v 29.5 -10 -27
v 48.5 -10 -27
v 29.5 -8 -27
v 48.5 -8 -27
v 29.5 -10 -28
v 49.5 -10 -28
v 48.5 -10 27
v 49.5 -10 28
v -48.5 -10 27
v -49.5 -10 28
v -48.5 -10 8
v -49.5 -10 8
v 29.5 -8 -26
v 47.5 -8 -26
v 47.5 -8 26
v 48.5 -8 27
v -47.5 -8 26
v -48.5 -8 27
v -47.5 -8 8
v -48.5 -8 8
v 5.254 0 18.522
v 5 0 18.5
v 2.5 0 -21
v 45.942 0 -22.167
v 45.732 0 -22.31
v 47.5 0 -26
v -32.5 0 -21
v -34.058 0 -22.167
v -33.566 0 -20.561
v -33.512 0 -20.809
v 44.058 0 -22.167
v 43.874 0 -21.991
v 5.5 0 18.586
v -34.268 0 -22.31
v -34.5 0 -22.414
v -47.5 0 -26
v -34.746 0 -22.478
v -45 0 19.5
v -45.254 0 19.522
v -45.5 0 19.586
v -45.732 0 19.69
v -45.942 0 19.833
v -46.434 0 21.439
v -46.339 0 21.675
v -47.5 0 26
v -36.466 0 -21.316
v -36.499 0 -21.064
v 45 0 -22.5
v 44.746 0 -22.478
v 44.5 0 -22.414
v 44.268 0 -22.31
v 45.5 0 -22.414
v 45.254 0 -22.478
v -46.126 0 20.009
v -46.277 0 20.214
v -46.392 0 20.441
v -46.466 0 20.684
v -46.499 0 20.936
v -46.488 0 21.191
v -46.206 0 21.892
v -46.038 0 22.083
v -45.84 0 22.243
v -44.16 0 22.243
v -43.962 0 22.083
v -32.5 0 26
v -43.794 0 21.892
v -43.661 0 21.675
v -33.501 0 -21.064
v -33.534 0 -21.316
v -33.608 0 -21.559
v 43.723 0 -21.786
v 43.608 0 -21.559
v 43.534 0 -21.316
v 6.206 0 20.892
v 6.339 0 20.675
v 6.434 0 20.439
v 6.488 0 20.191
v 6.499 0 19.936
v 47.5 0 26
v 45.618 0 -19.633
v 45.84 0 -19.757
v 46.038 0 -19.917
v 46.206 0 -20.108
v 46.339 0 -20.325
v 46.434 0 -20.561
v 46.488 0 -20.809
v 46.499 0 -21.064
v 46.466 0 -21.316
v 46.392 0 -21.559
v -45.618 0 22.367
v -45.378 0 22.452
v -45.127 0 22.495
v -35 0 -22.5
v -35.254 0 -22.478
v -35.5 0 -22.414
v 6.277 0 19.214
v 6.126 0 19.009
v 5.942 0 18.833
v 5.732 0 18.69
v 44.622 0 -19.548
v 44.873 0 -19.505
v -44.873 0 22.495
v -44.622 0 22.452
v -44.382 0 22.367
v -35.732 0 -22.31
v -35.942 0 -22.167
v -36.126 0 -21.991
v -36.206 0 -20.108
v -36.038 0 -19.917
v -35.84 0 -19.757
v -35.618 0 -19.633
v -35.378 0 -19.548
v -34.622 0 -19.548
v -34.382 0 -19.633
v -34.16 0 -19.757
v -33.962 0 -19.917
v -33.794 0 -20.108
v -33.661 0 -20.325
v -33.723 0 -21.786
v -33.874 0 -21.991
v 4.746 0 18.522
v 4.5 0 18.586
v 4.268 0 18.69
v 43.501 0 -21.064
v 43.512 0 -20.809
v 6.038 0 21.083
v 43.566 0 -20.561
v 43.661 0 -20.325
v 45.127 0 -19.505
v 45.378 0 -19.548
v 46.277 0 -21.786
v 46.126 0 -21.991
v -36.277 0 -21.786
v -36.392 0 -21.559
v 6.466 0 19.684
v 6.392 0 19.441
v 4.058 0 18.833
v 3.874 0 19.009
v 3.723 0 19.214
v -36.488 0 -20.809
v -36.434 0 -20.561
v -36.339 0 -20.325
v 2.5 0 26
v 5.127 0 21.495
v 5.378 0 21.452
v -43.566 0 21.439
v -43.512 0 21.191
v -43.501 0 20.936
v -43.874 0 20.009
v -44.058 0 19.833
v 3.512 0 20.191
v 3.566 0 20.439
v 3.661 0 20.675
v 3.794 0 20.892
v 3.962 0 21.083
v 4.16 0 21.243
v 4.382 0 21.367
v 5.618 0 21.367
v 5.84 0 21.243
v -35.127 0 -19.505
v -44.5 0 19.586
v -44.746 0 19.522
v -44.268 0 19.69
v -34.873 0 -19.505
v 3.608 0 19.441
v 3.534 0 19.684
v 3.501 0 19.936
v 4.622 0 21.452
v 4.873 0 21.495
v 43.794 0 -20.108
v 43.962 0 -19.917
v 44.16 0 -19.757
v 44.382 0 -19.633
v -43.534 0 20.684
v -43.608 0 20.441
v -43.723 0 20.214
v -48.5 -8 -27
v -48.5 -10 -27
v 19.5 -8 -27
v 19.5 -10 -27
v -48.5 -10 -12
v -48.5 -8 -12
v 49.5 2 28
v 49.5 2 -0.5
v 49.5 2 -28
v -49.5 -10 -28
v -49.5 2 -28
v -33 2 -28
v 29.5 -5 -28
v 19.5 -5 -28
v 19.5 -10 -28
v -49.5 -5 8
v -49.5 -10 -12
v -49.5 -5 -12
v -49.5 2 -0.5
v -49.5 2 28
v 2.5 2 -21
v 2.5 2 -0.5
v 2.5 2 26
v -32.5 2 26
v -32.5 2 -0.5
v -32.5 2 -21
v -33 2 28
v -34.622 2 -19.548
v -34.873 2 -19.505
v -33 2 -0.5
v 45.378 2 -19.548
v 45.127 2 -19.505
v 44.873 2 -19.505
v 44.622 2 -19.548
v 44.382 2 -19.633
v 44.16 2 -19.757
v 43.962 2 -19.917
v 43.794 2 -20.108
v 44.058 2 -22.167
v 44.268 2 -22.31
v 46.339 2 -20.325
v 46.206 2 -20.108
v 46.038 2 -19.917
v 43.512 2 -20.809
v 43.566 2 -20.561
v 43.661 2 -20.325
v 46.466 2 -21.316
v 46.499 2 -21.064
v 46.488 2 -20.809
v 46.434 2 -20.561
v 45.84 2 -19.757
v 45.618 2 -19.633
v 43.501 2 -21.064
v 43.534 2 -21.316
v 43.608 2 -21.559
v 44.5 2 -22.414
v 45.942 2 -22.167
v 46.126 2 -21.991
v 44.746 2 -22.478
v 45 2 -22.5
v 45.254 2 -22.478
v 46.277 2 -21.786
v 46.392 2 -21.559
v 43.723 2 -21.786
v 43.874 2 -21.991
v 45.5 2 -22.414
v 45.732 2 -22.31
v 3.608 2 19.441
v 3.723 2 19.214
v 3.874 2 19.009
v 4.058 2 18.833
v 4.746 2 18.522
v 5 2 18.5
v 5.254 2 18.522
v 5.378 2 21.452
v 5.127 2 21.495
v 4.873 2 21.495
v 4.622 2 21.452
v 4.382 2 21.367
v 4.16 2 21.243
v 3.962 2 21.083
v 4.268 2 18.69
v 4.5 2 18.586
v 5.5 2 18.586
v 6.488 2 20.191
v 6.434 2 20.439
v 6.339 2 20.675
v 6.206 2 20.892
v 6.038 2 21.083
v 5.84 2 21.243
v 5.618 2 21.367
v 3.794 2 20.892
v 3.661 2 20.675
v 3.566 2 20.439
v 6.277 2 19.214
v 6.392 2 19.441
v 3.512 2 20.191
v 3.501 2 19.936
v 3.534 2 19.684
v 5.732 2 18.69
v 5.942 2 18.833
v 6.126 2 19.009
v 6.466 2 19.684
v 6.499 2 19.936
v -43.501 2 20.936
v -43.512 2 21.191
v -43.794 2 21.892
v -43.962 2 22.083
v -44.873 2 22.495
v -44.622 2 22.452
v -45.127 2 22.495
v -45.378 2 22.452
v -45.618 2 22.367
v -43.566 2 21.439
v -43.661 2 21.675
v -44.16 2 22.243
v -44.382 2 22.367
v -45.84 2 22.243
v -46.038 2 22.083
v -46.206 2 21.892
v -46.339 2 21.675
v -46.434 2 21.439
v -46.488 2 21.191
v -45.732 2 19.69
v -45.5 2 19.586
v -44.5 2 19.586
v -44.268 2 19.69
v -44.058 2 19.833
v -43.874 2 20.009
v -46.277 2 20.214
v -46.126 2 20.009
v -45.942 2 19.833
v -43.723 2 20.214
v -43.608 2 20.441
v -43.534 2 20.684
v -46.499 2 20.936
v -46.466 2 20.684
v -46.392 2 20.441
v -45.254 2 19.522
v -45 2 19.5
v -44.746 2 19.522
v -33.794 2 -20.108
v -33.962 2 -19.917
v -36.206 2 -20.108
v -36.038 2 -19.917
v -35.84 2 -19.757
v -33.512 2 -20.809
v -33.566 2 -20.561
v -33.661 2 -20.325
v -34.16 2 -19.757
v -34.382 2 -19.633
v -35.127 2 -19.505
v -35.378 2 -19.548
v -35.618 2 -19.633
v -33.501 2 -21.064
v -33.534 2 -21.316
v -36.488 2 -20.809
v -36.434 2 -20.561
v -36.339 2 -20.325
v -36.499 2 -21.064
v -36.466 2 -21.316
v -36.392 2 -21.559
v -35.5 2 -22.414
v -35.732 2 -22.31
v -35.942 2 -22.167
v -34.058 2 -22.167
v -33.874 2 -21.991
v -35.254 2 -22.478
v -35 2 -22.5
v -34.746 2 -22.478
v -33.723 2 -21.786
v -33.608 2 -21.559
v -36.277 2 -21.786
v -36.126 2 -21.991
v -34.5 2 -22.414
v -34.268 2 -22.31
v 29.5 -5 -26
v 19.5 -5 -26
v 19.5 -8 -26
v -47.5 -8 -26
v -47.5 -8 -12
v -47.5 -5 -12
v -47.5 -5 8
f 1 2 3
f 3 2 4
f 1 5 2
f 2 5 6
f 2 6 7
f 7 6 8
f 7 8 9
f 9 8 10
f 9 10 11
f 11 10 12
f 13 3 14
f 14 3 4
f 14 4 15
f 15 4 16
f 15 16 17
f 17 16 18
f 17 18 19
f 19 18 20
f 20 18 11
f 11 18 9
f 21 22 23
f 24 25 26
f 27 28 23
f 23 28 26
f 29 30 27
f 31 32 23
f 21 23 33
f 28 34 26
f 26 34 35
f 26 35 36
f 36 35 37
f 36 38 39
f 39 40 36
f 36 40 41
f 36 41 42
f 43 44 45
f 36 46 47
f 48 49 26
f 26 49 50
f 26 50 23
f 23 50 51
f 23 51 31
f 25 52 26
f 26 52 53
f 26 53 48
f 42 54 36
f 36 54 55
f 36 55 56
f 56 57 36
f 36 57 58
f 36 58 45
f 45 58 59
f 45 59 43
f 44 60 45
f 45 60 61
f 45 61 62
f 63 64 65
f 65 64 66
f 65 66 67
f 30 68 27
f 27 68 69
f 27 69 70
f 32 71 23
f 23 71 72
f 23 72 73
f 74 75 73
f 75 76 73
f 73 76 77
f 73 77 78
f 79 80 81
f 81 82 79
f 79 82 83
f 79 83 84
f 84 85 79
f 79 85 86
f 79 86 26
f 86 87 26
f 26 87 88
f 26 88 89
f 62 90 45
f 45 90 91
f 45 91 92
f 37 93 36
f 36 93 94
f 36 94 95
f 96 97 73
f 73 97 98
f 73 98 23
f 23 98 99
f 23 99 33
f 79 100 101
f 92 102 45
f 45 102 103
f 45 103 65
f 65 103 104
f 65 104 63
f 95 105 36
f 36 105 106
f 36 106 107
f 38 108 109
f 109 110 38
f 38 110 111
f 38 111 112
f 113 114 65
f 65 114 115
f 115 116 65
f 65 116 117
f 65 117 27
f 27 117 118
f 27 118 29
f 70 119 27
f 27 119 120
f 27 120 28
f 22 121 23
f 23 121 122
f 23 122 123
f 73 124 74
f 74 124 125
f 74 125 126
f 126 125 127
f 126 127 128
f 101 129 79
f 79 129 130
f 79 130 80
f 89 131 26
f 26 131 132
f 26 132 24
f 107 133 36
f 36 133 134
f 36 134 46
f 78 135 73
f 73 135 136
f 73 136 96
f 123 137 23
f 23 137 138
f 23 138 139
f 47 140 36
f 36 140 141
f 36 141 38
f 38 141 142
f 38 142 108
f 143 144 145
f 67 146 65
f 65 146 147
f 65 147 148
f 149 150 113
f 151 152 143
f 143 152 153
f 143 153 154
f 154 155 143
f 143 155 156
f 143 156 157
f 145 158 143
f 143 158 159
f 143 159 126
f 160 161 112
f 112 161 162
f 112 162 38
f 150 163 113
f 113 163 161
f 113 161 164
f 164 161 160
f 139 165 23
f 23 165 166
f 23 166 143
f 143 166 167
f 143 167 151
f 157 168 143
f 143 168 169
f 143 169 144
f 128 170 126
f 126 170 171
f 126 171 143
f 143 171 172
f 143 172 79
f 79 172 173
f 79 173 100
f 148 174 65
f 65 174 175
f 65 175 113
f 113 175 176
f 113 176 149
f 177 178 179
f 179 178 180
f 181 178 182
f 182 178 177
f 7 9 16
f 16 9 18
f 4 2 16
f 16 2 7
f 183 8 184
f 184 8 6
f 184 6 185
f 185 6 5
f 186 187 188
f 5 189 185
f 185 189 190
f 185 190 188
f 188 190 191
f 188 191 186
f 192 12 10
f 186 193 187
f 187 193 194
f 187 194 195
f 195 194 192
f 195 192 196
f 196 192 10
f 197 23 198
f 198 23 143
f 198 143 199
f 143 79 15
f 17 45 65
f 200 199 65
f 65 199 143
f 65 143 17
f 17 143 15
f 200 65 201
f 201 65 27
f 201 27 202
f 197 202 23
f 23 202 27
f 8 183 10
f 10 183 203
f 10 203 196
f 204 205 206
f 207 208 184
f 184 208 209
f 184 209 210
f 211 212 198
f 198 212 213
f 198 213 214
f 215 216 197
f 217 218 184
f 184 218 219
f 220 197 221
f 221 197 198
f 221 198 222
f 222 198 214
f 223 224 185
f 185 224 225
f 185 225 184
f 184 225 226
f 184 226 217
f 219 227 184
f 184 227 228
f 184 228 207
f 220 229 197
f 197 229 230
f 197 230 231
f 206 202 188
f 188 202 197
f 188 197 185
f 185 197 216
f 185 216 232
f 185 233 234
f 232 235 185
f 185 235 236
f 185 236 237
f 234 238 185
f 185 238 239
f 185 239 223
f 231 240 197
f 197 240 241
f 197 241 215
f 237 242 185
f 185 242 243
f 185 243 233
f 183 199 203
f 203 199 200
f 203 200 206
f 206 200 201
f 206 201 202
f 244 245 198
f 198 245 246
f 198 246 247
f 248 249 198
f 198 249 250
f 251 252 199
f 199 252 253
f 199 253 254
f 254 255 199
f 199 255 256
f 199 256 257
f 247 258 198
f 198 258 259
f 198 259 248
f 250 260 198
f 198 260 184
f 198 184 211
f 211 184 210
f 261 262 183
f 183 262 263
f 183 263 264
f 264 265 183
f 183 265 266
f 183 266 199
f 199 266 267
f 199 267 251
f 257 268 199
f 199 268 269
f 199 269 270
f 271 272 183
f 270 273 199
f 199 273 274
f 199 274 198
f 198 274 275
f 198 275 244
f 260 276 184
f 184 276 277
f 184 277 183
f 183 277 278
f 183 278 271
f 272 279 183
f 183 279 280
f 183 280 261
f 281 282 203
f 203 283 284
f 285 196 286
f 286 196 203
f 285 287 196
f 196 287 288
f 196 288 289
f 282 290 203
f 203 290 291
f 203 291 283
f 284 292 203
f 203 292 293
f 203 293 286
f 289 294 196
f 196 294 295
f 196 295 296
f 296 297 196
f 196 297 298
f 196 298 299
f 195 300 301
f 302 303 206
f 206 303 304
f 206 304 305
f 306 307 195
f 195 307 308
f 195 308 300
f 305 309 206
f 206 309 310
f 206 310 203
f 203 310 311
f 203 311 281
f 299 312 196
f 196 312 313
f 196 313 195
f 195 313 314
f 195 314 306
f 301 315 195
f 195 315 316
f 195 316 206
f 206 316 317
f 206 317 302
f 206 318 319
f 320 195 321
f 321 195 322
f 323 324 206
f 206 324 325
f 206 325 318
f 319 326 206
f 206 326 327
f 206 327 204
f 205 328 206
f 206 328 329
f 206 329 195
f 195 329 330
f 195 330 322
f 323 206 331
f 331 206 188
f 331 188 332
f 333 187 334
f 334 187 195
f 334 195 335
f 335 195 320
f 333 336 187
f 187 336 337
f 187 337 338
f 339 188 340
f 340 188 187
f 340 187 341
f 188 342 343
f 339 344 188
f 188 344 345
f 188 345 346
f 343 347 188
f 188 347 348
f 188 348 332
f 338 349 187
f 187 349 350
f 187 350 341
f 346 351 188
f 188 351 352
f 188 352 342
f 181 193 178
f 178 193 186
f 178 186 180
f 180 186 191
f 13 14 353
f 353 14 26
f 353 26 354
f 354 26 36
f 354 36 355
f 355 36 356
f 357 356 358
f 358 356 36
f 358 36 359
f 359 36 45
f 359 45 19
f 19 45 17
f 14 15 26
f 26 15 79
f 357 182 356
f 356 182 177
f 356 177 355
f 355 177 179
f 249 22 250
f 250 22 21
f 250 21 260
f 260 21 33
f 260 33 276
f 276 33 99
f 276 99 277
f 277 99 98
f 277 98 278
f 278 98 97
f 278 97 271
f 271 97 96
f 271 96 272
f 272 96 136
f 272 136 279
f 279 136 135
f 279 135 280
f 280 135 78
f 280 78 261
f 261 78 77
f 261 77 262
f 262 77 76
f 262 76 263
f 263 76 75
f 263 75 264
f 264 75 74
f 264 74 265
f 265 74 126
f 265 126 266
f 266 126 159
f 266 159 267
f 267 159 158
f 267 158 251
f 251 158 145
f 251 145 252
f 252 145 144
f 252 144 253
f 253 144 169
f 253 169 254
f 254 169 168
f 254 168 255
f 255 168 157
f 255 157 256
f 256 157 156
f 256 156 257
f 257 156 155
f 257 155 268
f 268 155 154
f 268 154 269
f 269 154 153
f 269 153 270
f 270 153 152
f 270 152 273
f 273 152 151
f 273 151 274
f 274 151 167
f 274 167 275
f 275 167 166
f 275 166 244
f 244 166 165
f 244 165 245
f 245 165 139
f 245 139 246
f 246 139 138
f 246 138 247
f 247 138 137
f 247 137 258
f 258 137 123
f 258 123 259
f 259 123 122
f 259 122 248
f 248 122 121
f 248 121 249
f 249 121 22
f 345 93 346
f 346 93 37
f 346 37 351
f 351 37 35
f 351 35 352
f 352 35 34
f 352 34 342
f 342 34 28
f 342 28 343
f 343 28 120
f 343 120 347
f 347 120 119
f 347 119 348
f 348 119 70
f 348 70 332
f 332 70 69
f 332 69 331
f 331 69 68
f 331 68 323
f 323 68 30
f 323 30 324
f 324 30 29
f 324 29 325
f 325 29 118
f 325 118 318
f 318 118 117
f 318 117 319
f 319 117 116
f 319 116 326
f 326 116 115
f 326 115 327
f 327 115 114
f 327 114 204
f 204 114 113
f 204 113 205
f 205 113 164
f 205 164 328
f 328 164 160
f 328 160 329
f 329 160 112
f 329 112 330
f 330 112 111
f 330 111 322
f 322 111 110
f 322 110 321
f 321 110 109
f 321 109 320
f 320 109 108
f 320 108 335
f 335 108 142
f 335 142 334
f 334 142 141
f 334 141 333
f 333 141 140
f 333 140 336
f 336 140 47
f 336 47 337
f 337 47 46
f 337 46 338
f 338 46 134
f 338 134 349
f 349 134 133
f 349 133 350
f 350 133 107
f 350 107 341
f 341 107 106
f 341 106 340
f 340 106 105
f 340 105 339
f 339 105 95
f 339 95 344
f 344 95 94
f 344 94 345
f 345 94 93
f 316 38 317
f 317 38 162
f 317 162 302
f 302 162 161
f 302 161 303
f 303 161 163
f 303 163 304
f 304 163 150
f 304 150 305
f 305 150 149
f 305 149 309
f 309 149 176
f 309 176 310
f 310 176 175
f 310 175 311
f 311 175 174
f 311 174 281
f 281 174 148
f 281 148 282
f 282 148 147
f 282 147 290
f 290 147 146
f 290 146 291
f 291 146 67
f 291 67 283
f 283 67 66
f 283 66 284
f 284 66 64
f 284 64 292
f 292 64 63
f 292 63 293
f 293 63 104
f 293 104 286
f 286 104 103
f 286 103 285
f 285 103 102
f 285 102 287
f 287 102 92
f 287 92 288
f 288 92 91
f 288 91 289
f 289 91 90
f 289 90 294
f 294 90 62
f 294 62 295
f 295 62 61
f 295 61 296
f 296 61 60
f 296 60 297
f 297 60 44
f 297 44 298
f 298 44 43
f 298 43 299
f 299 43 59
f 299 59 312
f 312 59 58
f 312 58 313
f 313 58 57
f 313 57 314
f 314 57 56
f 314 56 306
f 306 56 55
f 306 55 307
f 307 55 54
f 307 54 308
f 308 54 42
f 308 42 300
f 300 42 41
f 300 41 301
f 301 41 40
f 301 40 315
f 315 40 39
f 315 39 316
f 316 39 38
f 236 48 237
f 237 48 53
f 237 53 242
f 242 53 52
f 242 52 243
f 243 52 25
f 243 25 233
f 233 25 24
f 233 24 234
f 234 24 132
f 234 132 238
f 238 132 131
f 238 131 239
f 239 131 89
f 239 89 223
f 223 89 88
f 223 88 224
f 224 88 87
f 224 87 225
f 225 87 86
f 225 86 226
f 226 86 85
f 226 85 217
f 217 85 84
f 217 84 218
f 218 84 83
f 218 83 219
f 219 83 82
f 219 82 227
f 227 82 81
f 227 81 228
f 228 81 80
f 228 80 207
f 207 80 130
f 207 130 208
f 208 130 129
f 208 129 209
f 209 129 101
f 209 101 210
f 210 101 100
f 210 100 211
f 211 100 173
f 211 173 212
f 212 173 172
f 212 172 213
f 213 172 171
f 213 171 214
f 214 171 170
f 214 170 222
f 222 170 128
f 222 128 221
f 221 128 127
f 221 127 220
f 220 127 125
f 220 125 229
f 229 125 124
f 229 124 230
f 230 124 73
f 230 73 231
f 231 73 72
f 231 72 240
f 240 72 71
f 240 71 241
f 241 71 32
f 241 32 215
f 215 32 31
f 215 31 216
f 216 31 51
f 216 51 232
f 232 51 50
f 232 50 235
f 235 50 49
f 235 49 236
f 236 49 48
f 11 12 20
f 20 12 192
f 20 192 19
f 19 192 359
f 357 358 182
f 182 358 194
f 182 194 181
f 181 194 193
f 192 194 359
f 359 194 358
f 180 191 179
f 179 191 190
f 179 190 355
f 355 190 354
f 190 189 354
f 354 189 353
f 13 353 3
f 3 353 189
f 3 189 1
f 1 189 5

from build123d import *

# Parameters (mm, degrees)
SKETCH1_W                = 99
SKETCH1_H                = 56
SKETCH1_W_2              = 97
SKETCH1_H_2              = 54
SKETCH1_W_3              = 95
SKETCH1_H_3              = 52
BOSS_EXTRUDE1_DEPTH      = 2
SKETCH1_3_W              = 99
SKETCH1_3_H              = 56
SKETCH1_3_W_2            = 97
SKETCH1_3_H_2            = 54
BOSS_EXTRUDE2_DEPTH      = 10
SKETCH1_4_W              = 97
SKETCH1_4_H              = 54
SKETCH1_4_W_2            = 95
SKETCH1_4_H_2            = 52
BOSS_EXTRUDE3_DEPTH      = 8
F_3_0_3_DIAMETER_HOLE1_D = 3
CUT_EXTRUDE1_REACH       = 105.368
SKETCH7_W                = 20
SKETCH7_H                = 5
CUT_EXTRUDE2_REACH       = 77.407
SKETCH8_W                = 10
SKETCH8_H                = 5


with BuildPart() as part:
    # Sketch1 → Boss-Extrude1 (new body)
    with BuildSketch(Plane(origin=(0, 0, 0), x_dir=(1, 0, 0), z_dir=(0, 1, 0))):
        Rectangle(SKETCH1_W, SKETCH1_H)
        Rectangle(SKETCH1_W_2, SKETCH1_H_2, mode=Mode.SUBTRACT)
        Rectangle(SKETCH1_W_2, SKETCH1_H_2)
        Rectangle(SKETCH1_W_3, SKETCH1_H_3, mode=Mode.SUBTRACT)
        Polygon((47.5, 26), (-47.5, 26), (-47.5, -26), (-32.5, -26), (-32.5, 21), (2.5, 21), (2.5, -26), (47.5, -26), align=None)
    extrude(amount=BOSS_EXTRUDE1_DEPTH)

    # Sketch1<3> → Boss-Extrude2 (add)
    with BuildSketch(Plane(origin=(0, 0, 0), x_dir=(1, 0, 0), z_dir=(0, 1, 0))):
        Rectangle(SKETCH1_3_W, SKETCH1_3_H)
        Rectangle(SKETCH1_3_W_2, SKETCH1_3_H_2, mode=Mode.SUBTRACT)
    extrude(amount=-BOSS_EXTRUDE2_DEPTH)

    # Sketch1<4> → Boss-Extrude3 (add)
    with BuildSketch(Plane(origin=(0, 0, 0), x_dir=(1, 0, 0), z_dir=(0, 1, 0))):
        Rectangle(SKETCH1_4_W, SKETCH1_4_H)
        Rectangle(SKETCH1_4_W_2, SKETCH1_4_H_2, mode=Mode.SUBTRACT)
    extrude(amount=-BOSS_EXTRUDE3_DEPTH)

    # Ø3.0 (3) Diameter Hole1 (through all)
    with Locations(Plane(origin=(0, 0, 0), x_dir=(-1, 0, 0), z_dir=(0, -1, 0))):
        with Locations((-45, 21), (45, -21), (35, 21), (-5, -20)):
            Hole(F_3_0_3_DIAMETER_HOLE1_D / 2)

    # Cut-Extrude1: up to this face of the body (flat: up to its plane)
    cut_extrude1_end = Plane(part.part.faces().sort_by_distance((-47.5, -4, 0))[0])
    # Sketch7 → Cut-Extrude1 (cut, up to the picked face)
    with BuildSketch(Plane.ZY.offset(49.5), mode=Mode.PRIVATE) as cut_extrude1_sk1:
        with Locations((-2, -7.5)):
            Rectangle(SKETCH7_W, SKETCH7_H)
    cut_extrude1_tool1 = split(extrude(cut_extrude1_sk1.sketch, amount=-CUT_EXTRUDE1_REACH, mode=Mode.PRIVATE), bisect_by=cut_extrude1_end, keep=Keep.BOTH, mode=Mode.PRIVATE)
    add(cut_extrude1_tool1.solids().sort_by(Axis((-49.5, -7.5, -2), (1, 0, 0)))[0], mode=Mode.SUBTRACT)

    # Sketch8 → Cut-Extrude2 (cut, up to next)
    with BuildSketch(Plane(origin=(0, 0, -28), x_dir=(-1, 0, 0), z_dir=(0, 0, -1)), mode=Mode.PRIVATE) as cut_extrude2_sk1:
        with Locations((-24.5, -7.5)):
            Rectangle(SKETCH8_W, SKETCH8_H)
    cut_extrude2_tool1 = extrude(cut_extrude2_sk1.sketch, amount=-CUT_EXTRUDE2_REACH, mode=Mode.PRIVATE) & part.part
    add(cut_extrude2_tool1.solids().sort_by_distance((24.5, -7.5, -28))[0], mode=Mode.SUBTRACT)


solid = part.part
